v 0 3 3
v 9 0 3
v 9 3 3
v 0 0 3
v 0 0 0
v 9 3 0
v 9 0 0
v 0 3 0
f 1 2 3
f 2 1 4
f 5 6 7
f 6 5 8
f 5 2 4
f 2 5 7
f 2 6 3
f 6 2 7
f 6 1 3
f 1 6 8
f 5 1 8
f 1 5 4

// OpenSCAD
// A computed zero step yields an empty range rather than killing the compile.
step = 0;
for (i = [0 : step : 3]) translate([i * 5, 0, 0]) cube(1);
cube([9, 3, 3]);
